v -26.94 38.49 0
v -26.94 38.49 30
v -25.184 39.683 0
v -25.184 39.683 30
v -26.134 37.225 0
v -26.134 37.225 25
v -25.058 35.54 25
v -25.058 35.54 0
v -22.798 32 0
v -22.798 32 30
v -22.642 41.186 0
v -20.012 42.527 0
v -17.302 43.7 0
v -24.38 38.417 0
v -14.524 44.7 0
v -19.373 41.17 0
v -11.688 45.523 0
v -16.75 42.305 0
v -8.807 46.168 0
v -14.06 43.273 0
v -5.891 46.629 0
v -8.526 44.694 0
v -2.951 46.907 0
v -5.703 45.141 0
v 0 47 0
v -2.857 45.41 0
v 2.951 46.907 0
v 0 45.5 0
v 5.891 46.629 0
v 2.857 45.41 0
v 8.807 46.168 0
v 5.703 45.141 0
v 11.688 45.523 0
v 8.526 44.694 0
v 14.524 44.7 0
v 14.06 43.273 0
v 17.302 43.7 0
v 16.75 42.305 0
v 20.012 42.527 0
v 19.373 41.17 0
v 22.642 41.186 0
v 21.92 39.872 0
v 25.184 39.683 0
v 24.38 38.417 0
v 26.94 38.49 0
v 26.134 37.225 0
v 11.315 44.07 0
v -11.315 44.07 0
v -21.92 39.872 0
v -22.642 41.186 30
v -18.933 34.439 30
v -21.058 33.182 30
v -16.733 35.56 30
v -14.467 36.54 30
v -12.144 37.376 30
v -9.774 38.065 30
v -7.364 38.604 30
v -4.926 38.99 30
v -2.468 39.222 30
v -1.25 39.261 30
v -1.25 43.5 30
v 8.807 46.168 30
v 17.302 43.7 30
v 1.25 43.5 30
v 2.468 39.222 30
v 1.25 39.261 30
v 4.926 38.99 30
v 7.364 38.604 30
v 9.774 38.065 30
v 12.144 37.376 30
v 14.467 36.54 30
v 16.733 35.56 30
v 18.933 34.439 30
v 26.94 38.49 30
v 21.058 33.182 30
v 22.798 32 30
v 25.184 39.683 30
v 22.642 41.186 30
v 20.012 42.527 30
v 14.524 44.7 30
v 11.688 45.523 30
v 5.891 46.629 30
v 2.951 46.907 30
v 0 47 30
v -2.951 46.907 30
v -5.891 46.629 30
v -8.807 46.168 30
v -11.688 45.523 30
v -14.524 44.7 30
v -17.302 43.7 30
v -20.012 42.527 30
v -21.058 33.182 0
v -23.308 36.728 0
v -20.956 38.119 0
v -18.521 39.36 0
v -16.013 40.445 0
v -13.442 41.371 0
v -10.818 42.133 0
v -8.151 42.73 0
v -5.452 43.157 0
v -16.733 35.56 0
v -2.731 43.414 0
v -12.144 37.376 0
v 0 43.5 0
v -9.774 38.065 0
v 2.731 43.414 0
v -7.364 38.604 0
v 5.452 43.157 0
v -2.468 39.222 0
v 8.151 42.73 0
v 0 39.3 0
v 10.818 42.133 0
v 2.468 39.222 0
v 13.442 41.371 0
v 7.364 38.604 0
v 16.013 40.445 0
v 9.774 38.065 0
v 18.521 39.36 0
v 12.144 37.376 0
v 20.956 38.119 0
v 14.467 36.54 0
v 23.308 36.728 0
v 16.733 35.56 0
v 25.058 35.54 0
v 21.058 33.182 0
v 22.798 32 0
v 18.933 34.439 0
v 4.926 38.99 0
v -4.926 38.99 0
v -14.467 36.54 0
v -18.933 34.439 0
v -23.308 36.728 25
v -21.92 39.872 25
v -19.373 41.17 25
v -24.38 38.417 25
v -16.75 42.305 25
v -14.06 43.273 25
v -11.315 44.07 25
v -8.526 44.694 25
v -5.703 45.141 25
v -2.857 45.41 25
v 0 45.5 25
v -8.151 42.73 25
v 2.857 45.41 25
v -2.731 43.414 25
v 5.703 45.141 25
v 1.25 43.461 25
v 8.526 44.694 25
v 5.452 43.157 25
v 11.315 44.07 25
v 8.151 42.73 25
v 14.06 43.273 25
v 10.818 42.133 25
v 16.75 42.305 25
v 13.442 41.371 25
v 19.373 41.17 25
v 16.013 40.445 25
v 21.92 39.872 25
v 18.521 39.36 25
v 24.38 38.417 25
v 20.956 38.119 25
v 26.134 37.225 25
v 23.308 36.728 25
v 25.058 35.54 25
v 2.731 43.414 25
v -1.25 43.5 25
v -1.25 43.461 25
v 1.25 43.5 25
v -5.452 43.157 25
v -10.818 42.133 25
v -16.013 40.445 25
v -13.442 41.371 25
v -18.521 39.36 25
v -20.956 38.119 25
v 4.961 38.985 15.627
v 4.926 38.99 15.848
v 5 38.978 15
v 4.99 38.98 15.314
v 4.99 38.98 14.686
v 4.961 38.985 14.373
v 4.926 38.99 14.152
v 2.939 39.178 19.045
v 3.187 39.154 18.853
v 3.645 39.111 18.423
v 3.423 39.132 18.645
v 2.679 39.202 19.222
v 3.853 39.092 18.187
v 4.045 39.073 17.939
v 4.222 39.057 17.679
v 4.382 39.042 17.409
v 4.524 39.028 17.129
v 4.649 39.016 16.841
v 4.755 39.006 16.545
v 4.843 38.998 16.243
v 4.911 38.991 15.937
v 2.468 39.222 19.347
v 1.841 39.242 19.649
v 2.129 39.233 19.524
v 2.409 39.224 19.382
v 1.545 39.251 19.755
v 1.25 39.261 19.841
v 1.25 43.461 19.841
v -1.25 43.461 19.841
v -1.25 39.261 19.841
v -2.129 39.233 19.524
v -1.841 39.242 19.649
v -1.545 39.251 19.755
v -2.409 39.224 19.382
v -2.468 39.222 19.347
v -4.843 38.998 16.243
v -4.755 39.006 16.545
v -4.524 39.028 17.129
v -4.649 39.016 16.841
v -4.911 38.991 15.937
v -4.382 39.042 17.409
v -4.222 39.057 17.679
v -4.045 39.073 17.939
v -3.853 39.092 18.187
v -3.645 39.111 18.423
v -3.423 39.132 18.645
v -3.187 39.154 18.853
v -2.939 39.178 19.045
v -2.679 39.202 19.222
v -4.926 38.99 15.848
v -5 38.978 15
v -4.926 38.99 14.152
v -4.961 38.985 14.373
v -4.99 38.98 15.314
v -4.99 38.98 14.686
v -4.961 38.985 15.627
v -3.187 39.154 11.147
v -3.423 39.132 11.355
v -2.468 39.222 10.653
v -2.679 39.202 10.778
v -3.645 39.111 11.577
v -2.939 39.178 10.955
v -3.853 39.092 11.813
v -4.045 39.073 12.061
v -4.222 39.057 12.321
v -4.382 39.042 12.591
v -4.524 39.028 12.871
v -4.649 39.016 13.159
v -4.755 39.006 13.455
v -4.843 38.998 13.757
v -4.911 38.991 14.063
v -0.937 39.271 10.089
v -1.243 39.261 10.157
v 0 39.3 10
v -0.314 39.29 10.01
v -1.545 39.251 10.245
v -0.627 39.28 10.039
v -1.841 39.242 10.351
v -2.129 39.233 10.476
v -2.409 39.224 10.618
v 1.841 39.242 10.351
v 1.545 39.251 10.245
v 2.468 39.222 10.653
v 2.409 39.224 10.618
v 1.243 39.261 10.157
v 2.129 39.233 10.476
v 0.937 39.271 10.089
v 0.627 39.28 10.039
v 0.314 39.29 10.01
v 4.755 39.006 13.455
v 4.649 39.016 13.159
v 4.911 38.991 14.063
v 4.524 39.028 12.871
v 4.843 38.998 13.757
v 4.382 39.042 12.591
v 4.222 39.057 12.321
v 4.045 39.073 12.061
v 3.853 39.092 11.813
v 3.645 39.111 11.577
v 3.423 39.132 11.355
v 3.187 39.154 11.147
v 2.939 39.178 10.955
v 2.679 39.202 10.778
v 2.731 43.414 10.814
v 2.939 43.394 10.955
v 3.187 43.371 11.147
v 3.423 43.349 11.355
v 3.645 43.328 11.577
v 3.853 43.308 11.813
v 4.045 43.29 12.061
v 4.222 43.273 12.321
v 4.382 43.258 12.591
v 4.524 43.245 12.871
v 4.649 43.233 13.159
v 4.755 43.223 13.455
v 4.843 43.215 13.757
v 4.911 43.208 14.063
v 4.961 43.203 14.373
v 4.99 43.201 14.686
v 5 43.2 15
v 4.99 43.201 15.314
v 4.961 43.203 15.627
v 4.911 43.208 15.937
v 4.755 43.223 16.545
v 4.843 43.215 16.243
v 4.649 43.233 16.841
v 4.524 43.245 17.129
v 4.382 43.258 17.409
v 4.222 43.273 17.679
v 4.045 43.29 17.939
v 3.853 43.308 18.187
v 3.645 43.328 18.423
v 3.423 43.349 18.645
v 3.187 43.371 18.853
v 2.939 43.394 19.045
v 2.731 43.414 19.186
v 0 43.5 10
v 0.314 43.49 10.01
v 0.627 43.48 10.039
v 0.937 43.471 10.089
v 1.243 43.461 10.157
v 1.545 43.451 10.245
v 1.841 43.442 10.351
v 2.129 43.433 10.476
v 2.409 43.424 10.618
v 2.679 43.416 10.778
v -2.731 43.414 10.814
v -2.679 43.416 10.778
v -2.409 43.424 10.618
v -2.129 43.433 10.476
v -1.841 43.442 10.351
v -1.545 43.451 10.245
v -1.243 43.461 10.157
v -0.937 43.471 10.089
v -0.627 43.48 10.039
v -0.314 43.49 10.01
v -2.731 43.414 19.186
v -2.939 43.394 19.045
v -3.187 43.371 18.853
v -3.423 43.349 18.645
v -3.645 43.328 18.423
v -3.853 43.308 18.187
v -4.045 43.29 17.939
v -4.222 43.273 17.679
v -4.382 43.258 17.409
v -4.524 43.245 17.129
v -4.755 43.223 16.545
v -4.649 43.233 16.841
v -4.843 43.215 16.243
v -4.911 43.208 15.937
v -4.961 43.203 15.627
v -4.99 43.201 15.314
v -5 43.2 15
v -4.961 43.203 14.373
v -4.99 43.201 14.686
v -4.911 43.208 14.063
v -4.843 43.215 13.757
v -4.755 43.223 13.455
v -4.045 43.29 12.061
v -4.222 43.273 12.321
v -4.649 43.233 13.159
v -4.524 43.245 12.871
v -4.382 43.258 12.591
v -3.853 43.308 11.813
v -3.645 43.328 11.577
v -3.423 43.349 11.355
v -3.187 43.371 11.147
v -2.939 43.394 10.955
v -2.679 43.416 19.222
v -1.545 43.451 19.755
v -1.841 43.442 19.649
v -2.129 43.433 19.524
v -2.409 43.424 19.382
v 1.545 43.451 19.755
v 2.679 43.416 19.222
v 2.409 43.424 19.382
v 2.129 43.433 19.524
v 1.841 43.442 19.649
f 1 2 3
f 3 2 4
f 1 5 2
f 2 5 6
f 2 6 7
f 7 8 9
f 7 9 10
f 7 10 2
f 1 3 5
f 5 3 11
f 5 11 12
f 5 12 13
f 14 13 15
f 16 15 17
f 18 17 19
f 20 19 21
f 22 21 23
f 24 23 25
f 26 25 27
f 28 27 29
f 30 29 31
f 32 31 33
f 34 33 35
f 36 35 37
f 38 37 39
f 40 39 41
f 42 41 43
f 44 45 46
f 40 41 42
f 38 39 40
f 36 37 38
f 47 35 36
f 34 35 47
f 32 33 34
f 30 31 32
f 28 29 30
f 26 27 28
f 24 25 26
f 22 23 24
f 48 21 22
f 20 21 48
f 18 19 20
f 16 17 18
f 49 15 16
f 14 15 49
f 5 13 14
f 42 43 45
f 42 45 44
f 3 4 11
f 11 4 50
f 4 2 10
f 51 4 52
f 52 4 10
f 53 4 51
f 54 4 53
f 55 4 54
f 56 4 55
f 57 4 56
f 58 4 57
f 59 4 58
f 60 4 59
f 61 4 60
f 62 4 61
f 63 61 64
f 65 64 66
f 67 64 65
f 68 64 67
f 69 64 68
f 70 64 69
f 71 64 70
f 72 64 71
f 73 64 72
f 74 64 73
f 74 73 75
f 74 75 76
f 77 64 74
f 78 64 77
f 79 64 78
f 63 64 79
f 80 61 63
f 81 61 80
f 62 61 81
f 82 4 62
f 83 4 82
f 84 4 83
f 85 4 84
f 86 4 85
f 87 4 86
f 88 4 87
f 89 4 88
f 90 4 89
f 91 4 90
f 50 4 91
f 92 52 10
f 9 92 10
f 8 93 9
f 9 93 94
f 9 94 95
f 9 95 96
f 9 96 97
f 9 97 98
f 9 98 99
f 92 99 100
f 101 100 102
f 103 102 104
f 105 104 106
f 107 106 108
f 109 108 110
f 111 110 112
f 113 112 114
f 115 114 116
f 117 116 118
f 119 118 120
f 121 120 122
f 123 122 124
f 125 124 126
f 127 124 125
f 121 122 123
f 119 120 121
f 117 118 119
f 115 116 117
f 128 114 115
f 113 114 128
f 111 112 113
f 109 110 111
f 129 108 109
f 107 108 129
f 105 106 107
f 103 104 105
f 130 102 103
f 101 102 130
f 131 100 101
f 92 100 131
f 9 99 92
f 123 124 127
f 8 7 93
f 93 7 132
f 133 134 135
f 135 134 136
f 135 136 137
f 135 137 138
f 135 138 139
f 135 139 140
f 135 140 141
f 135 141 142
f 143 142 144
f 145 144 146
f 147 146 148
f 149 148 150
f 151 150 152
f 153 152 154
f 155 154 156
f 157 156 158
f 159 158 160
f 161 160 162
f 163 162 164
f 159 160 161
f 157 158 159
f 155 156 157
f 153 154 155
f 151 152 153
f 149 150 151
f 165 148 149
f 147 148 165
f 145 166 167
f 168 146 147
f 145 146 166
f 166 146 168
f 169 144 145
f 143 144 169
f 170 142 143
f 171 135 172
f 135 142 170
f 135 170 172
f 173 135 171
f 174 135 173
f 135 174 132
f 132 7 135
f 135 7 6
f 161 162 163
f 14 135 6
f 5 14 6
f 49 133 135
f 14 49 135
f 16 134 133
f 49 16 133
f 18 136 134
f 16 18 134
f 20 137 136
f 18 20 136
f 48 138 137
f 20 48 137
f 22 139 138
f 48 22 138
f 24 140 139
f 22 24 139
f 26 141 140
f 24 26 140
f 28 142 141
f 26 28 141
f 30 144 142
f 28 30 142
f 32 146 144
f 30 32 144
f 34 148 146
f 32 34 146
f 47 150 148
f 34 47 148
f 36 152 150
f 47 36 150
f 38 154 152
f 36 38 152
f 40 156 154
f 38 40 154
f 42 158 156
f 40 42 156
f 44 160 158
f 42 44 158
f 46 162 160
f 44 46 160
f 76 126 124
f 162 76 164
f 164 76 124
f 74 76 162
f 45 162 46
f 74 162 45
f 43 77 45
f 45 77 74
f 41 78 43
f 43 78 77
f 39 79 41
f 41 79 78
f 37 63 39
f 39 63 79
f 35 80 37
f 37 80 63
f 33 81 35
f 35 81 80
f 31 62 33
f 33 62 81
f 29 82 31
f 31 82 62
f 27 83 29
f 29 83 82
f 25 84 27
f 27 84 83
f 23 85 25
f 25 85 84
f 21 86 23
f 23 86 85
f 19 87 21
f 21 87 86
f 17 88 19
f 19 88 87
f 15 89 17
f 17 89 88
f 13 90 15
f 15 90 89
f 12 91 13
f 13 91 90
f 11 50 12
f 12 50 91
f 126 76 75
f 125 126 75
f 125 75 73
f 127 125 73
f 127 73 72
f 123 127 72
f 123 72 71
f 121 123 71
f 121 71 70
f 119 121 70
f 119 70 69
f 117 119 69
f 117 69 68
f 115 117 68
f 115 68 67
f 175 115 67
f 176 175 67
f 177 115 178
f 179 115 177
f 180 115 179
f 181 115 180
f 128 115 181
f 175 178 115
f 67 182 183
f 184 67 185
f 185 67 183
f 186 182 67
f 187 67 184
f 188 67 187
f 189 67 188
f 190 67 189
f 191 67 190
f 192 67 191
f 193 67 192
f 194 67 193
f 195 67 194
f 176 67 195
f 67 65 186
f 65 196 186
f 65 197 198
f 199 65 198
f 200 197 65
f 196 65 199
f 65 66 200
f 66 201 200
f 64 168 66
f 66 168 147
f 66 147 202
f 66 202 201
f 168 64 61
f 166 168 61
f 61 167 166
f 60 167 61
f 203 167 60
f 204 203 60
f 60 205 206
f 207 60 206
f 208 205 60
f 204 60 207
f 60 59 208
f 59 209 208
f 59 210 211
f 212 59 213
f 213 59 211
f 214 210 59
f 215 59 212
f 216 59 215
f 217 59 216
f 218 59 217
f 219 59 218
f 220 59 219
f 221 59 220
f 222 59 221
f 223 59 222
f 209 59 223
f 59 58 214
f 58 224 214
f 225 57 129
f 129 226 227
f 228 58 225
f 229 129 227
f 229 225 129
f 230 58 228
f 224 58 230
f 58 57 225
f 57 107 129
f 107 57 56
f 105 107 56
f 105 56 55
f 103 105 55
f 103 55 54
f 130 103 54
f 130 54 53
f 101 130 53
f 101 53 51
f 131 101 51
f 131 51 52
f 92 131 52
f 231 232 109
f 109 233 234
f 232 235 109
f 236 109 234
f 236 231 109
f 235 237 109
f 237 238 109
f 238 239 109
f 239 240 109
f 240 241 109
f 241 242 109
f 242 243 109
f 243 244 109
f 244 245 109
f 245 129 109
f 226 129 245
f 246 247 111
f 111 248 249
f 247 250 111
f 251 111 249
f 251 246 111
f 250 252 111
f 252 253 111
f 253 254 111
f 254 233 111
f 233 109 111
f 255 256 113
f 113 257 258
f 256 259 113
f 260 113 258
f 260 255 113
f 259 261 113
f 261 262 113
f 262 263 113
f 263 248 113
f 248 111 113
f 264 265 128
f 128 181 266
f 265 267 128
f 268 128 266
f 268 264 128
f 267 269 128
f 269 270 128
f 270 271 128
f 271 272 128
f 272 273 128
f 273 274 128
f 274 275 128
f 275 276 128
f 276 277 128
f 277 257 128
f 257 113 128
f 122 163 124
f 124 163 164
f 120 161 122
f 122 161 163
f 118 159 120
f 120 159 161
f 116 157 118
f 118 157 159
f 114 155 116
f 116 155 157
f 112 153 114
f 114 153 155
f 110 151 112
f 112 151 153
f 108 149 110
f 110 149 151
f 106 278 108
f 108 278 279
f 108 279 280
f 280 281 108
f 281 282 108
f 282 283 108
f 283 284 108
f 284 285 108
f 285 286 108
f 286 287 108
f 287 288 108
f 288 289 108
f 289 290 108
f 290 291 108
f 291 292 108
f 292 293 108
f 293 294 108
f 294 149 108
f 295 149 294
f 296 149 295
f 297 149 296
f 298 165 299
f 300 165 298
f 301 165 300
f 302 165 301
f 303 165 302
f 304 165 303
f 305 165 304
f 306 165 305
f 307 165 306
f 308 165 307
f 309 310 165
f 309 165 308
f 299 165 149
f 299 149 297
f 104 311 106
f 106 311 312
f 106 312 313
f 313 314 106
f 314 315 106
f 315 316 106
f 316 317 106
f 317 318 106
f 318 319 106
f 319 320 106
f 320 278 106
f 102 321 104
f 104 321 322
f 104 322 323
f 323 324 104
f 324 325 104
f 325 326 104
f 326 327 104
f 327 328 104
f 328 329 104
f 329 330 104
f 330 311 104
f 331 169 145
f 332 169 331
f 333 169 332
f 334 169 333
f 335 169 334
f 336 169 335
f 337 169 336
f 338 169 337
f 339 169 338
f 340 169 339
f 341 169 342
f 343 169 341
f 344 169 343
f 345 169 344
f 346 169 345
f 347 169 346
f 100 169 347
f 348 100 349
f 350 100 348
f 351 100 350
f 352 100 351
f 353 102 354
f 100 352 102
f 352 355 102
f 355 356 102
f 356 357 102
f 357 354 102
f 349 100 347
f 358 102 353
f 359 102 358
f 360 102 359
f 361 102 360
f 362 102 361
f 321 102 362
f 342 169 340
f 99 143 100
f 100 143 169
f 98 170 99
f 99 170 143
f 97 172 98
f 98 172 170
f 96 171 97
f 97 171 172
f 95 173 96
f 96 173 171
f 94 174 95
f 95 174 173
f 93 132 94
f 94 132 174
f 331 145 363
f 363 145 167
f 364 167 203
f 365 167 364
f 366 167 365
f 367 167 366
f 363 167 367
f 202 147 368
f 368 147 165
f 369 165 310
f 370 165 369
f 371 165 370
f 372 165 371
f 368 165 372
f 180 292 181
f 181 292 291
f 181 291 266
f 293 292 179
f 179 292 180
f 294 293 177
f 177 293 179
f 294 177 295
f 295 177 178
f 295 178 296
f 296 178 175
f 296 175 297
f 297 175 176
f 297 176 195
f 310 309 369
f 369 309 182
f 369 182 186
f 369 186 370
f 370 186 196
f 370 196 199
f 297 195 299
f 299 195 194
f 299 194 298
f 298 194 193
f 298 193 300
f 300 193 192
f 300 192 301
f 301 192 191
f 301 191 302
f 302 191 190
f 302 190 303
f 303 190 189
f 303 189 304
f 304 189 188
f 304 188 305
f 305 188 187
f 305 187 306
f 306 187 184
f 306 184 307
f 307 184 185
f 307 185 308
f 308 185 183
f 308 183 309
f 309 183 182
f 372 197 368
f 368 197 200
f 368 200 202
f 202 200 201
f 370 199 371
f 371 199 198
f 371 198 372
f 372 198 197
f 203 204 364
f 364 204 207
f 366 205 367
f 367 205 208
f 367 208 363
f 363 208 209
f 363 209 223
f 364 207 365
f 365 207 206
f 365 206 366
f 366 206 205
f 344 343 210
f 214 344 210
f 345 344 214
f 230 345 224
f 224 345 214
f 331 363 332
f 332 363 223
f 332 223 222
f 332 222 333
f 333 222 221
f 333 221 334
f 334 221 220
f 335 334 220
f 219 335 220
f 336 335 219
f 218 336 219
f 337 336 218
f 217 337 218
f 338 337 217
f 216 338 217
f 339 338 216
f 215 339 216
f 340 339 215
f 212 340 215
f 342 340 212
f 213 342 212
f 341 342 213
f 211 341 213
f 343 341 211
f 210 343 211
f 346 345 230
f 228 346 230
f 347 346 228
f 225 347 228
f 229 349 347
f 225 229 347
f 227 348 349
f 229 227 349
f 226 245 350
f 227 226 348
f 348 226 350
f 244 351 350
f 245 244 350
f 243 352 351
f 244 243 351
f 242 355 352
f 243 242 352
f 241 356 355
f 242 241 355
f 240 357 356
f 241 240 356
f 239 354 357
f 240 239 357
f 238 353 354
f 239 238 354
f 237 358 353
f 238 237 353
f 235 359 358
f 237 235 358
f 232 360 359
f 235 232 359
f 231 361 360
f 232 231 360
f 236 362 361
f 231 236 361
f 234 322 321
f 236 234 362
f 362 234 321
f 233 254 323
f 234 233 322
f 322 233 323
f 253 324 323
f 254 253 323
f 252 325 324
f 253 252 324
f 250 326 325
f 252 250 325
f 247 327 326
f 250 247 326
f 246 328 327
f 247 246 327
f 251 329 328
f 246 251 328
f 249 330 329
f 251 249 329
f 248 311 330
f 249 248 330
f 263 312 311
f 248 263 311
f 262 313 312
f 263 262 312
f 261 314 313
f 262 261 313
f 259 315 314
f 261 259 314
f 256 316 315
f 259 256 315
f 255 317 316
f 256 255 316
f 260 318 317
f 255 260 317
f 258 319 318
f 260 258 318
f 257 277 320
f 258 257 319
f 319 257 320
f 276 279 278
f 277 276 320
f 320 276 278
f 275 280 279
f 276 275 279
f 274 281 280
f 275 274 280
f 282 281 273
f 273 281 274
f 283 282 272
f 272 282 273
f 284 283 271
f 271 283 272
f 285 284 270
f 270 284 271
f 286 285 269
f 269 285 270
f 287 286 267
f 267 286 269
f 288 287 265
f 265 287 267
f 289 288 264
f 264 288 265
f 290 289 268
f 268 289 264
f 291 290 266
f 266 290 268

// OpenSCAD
/*
 * leg.scad
 *
 * A portion of ss23's leg by Michael Fincham <michael@hotplate.co.nz>
 *
 */

$fn = 100;

difference() {

   // band
	intersection() {
	   // wanted portion
		hull() {
			cylinder(h=60,r=2);
			translate([30, 47, 0]) {
				cylinder(h=60,r=2);
			}
			translate([-30, 47, 0]) {
				cylinder(h=60,r=2);
			}
		}
	
	   // bracelet
		difference() {
			cylinder(h=30,r=47);
			cylinder(h=30,r=39.3);
	      // leg
			difference() {
				cylinder(h=25,r=45.5);
				cylinder(h=25,r=43.5);
			}		
		}
	}

   // pager motor
	translate([0, 45, 15]) {
		rotate([90, 0, 0]) {
			cylinder(h=10, r=5);
		}
	}

   // wiring slot
	translate([0, 39, 25]) {
   	cube([2.5, 9, 12], center=true); 
	}

}

// elastic band model (do not print)
/* difference() {
	cylinder(h=20,r=45.5);
	cylinder(h=20,r=43.5);
}	*/	
